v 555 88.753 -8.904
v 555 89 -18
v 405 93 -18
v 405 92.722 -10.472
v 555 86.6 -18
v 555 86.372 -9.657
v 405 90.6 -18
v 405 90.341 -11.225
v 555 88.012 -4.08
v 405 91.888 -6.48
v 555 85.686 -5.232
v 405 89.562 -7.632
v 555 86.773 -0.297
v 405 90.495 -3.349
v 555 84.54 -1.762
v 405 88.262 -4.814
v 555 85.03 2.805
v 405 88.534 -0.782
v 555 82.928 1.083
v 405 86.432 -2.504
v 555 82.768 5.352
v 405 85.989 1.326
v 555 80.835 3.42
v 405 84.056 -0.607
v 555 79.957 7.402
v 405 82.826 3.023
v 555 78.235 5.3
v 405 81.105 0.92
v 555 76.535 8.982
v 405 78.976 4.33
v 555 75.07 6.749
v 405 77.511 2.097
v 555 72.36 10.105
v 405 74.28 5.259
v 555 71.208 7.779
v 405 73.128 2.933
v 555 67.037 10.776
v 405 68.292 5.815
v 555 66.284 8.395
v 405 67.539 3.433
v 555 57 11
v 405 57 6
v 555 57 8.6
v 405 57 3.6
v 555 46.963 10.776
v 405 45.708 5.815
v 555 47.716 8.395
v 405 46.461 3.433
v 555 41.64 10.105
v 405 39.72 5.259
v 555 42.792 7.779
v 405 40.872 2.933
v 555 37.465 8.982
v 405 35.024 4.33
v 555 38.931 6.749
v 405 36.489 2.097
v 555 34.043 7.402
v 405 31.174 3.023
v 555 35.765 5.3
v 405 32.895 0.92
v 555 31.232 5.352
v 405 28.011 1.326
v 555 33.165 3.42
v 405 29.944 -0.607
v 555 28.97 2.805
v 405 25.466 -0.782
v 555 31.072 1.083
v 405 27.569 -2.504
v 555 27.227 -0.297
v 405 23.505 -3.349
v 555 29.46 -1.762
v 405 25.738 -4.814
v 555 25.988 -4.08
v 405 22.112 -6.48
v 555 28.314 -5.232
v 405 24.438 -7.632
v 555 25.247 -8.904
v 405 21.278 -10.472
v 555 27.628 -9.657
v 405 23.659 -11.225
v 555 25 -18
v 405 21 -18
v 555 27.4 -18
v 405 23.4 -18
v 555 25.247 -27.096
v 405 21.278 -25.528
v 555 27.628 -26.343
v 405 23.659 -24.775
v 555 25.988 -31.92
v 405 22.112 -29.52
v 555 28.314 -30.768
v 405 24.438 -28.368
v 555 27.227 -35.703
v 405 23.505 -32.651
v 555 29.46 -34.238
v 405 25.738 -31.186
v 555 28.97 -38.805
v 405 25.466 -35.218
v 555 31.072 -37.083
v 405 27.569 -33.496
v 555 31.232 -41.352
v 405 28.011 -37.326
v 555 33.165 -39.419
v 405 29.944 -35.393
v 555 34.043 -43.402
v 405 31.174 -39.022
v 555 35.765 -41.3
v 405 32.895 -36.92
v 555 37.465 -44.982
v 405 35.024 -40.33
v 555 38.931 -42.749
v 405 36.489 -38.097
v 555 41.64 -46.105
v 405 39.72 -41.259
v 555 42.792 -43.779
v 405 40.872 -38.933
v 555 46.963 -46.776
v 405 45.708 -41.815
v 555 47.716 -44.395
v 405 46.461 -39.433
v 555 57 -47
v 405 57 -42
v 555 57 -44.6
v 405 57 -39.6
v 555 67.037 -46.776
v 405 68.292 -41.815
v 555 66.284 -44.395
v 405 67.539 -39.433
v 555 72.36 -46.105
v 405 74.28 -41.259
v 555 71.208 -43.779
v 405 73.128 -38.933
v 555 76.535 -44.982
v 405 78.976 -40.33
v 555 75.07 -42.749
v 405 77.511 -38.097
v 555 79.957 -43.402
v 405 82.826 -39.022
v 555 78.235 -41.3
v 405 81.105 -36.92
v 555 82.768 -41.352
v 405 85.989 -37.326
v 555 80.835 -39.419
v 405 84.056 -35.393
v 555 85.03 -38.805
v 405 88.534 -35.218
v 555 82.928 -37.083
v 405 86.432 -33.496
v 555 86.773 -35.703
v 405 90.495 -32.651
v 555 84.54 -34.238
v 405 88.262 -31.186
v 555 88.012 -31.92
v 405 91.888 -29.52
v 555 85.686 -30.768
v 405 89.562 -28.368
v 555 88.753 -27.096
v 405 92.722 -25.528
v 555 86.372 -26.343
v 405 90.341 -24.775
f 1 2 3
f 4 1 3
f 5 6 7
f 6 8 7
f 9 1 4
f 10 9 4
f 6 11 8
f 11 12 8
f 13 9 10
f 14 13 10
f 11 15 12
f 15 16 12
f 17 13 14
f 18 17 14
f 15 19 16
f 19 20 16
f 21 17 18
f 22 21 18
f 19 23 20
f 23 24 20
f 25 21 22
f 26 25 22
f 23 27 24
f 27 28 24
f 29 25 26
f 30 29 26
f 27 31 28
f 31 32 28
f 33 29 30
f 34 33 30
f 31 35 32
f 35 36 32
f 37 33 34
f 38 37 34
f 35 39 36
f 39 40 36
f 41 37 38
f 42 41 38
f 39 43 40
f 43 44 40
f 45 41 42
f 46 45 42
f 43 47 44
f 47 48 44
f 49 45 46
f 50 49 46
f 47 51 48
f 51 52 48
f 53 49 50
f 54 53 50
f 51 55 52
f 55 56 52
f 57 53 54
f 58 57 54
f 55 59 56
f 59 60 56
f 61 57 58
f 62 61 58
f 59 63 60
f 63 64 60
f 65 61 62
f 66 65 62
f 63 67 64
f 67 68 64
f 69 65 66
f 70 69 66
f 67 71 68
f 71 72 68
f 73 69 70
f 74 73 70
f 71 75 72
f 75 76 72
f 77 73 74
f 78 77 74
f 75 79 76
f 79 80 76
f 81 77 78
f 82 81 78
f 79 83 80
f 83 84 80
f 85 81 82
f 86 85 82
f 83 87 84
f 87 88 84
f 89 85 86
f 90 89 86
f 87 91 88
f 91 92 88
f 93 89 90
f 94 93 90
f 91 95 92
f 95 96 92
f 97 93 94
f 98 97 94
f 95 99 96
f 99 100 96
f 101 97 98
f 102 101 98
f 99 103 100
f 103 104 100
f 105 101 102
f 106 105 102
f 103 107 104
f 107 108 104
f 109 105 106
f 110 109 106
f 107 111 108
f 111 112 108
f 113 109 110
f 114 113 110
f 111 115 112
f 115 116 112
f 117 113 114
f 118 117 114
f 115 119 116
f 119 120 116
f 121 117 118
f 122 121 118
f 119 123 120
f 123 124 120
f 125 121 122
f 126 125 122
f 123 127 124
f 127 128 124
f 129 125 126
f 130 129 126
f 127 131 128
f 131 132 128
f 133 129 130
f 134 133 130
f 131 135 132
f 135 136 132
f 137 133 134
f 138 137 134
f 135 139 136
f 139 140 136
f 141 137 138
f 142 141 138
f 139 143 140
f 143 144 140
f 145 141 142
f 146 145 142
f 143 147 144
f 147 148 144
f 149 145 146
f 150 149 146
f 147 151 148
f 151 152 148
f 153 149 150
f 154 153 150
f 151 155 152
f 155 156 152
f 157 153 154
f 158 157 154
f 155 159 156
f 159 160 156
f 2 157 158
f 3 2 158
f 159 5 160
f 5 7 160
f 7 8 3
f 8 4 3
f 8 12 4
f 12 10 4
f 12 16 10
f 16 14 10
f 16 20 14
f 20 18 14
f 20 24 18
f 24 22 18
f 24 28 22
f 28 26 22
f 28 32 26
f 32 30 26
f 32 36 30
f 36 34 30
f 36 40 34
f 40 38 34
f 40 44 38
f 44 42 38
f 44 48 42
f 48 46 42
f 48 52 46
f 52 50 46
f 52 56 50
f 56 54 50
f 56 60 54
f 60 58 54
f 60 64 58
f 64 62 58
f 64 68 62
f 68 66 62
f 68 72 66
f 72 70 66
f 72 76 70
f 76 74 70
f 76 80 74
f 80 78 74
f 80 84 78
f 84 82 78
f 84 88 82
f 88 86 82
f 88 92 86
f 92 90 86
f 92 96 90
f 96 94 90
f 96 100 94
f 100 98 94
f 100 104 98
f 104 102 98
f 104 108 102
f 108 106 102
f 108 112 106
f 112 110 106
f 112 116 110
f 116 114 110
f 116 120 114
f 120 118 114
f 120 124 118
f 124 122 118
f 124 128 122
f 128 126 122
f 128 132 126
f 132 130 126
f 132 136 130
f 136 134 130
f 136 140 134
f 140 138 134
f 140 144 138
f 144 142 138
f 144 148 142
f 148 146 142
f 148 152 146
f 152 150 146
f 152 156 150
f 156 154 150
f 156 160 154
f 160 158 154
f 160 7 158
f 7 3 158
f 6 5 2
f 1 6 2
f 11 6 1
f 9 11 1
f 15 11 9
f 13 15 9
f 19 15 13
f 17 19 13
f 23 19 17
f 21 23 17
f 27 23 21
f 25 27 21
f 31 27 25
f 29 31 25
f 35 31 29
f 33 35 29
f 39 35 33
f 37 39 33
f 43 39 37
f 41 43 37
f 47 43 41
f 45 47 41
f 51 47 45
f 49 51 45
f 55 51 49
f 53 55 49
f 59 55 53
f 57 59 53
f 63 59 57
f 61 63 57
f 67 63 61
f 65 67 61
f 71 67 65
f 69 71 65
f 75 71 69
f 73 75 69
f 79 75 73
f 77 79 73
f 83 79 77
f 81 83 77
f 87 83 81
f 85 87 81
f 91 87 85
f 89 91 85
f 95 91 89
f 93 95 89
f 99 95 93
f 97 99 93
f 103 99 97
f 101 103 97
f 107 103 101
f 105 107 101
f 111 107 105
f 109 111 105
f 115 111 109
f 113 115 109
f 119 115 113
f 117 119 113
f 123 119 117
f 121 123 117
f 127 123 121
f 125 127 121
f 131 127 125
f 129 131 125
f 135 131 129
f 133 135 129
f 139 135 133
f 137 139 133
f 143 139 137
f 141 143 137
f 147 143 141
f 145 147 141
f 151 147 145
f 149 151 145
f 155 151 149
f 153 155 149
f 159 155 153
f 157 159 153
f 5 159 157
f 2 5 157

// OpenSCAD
polyhedron(points=[[405.0, 93.0, -18.0], [405.0, 92.722345, -10.472184], [405.0, 91.888432, -6.48006], [405.0, 90.494851, -3.349061], [405.0, 88.53378, -0.782388], [405.0, 85.988826, 1.325884], [405.0, 82.826418, 3.02252], [405.0, 78.976409, 4.329901], [405.0, 74.27991, 5.258955], [405.0, 68.291725, 5.814896], [405.0, 57.0, 6.0], [405.0, 45.708275, 5.814896], [405.0, 39.72009, 5.258955], [405.0, 35.023591, 4.329901], [405.0, 31.173582, 3.02252], [405.0, 28.011174, 1.325884], [405.0, 25.46622, -0.782388], [405.0, 23.505149, -3.349061], [405.0, 22.111568, -6.48006], [405.0, 21.277655, -10.472184], [405.0, 21.0, -18.0], [405.0, 21.277655, -25.527816], [405.0, 22.111568, -29.51994], [405.0, 23.505149, -32.650939], [405.0, 25.46622, -35.217612], [405.0, 28.011174, -37.325884], [405.0, 31.173582, -39.02252], [405.0, 35.023591, -40.329901], [405.0, 39.72009, -41.258955], [405.0, 45.708275, -41.814896], [405.0, 57.0, -42.0], [405.0, 68.291725, -41.814896], [405.0, 74.27991, -41.258955], [405.0, 78.976409, -40.329901], [405.0, 82.826418, -39.02252], [405.0, 85.988826, -37.325884], [405.0, 88.53378, -35.217612], [405.0, 90.494851, -32.650939], [405.0, 91.888432, -29.51994], [405.0, 92.722345, -25.527816], [405.0, 90.6, -18.0], [405.0, 90.340855, -11.224965], [405.0, 89.562537, -7.632054], [405.0, 88.261861, -4.814155], [405.0, 86.431528, -2.504149], [405.0, 84.056238, -0.606704], [405.0, 81.104657, 0.920268], [405.0, 77.511315, 2.096911], [405.0, 73.127916, 2.933059], [405.0, 67.538943, 3.433407], [405.0, 57.0, 3.6], [405.0, 46.461057, 3.433407], [405.0, 40.872084, 2.933059], [405.0, 36.488685, 2.096911], [405.0, 32.895343, 0.920268], [405.0, 29.943762, -0.606704], [405.0, 27.568472, -2.504149], [405.0, 25.738139, -4.814155], [405.0, 24.437463, -7.632054], [405.0, 23.659145, -11.224965], [405.0, 23.4, -18.0], [405.0, 23.659145, -24.775035], [405.0, 24.437463, -28.367946], [405.0, 25.738139, -31.185845], [405.0, 27.568472, -33.495851], [405.0, 29.943762, -35.393296], [405.0, 32.895343, -36.920268], [405.0, 36.488685, -38.096911], [405.0, 40.872084, -38.933059], [405.0, 46.461057, -39.433407], [405.0, 57.0, -39.6], [405.0, 67.538943, -39.433407], [405.0, 73.127916, -38.933059], [405.0, 77.511315, -38.096911], [405.0, 81.104657, -36.920268], [405.0, 84.056238, -35.393296], [405.0, 86.431528, -33.495851], [405.0, 88.261861, -31.185845], [405.0, 89.562537, -28.367946], [405.0, 90.340855, -24.775035], [555.0, 89.0, -18.0], [555.0, 88.753195, -8.903889], [555.0, 88.01194, -4.080072], [555.0, 86.773201, -0.296782], [555.0, 85.030026, 2.804615], [555.0, 82.767845, 5.35211], [555.0, 79.956816, 7.402211], [555.0, 76.534586, 8.981963], [555.0, 72.35992, 10.10457], [555.0, 67.037089, 10.776333], [555.0, 57.0, 11.0], [555.0, 46.962911, 10.776333], [555.0, 41.64008, 10.10457], [555.0, 37.465414, 8.981963], [555.0, 34.043184, 7.402211], [555.0, 31.232155, 5.35211], [555.0, 28.969974, 2.804615], [555.0, 27.226799, -0.296782], [555.0, 25.98806, -4.080072], [555.0, 25.246805, -8.903889], [555.0, 25.0, -18.0], [555.0, 25.246805, -27.096111], [555.0, 25.98806, -31.919928], [555.0, 27.226799, -35.703218], [555.0, 28.969974, -38.804615], [555.0, 31.232155, -41.35211], [555.0, 34.043184, -43.402211], [555.0, 37.465414, -44.981963], [555.0, 41.64008, -46.10457], [555.0, 46.962911, -46.776333], [555.0, 57.0, -47.0], [555.0, 67.037089, -46.776333], [555.0, 72.35992, -46.10457], [555.0, 76.534586, -44.981963], [555.0, 79.956816, -43.402211], [555.0, 82.767845, -41.35211], [555.0, 85.030026, -38.804615], [555.0, 86.773201, -35.703218], [555.0, 88.01194, -31.919928], [555.0, 88.753195, -27.096111], [555.0, 86.6, -18.0], [555.0, 86.371706, -9.65667], [555.0, 85.686044, -5.232066], [555.0, 84.540211, -1.761876], [555.0, 82.927774, 1.082853], [555.0, 80.835257, 3.419521], [555.0, 78.235055, 5.299959], [555.0, 75.069492, 6.748973], [555.0, 71.207926, 7.778675], [555.0, 66.284307, 8.394843], [555.0, 57.0, 8.6], [555.0, 47.715693, 8.394843], [555.0, 42.792074, 7.778675], [555.0, 38.930508, 6.748973], [555.0, 35.764945, 5.299959], [555.0, 33.164743, 3.419521], [555.0, 31.072226, 1.082853], [555.0, 29.459789, -1.761876], [555.0, 28.313956, -5.232066], [555.0, 27.628294, -9.65667], [555.0, 27.4, -18.0], [555.0, 27.628294, -26.34333], [555.0, 28.313956, -30.767934], [555.0, 29.459789, -34.238124], [555.0, 31.072226, -37.082853], [555.0, 33.164743, -39.419521], [555.0, 35.764945, -41.299959], [555.0, 38.930508, -42.748973], [555.0, 42.792074, -43.778675], [555.0, 47.715693, -44.394843], [555.0, 57.0, -44.6], [555.0, 66.284307, -44.394843], [555.0, 71.207926, -43.778675], [555.0, 75.069492, -42.748973], [555.0, 78.235055, -41.299959], [555.0, 80.835257, -39.419521], [555.0, 82.927774, -37.082853], [555.0, 84.540211, -34.238124], [555.0, 85.686044, -30.767934], [555.0, 86.371706, -26.34333]], faces=[[0, 80, 81], [0, 81, 1], [40, 121, 120], [40, 41, 121], [1, 81, 82], [1, 82, 2], [41, 122, 121], [41, 42, 122], [2, 82, 83], [2, 83, 3], [42, 123, 122], [42, 43, 123], [3, 83, 84], [3, 84, 4], [43, 124, 123], [43, 44, 124], [4, 84, 85], [4, 85, 5], [44, 125, 124], [44, 45, 125], [5, 85, 86], [5, 86, 6], [45, 126, 125], [45, 46, 126], [6, 86, 87], [6, 87, 7], [46, 127, 126], [46, 47, 127], [7, 87, 88], [7, 88, 8], [47, 128, 127], [47, 48, 128], [8, 88, 89], [8, 89, 9], [48, 129, 128], [48, 49, 129], [9, 89, 90], [9, 90, 10], [49, 130, 129], [49, 50, 130], [10, 90, 91], [10, 91, 11], [50, 131, 130], [50, 51, 131], [11, 91, 92], [11, 92, 12], [51, 132, 131], [51, 52, 132], [12, 92, 93], [12, 93, 13], [52, 133, 132], [52, 53, 133], [13, 93, 94], [13, 94, 14], [53, 134, 133], [53, 54, 134], [14, 94, 95], [14, 95, 15], [54, 135, 134], [54, 55, 135], [15, 95, 96], [15, 96, 16], [55, 136, 135], [55, 56, 136], [16, 96, 97], [16, 97, 17], [56, 137, 136], [56, 57, 137], [17, 97, 98], [17, 98, 18], [57, 138, 137], [57, 58, 138], [18, 98, 99], [18, 99, 19], [58, 139, 138], [58, 59, 139], [19, 99, 100], [19, 100, 20], [59, 140, 139], [59, 60, 140], [20, 100, 101], [20, 101, 21], [60, 141, 140], [60, 61, 141], [21, 101, 102], [21, 102, 22], [61, 142, 141], [61, 62, 142], [22, 102, 103], [22, 103, 23], [62, 143, 142], [62, 63, 143], [23, 103, 104], [23, 104, 24], [63, 144, 143], [63, 64, 144], [24, 104, 105], [24, 105, 25], [64, 145, 144], [64, 65, 145], [25, 105, 106], [25, 106, 26], [65, 146, 145], [65, 66, 146], [26, 106, 107], [26, 107, 27], [66, 147, 146], [66, 67, 147], [27, 107, 108], [27, 108, 28], [67, 148, 147], [67, 68, 148], [28, 108, 109], [28, 109, 29], [68, 149, 148], [68, 69, 149], [29, 109, 110], [29, 110, 30], [69, 150, 149], [69, 70, 150], [30, 110, 111], [30, 111, 31], [70, 151, 150], [70, 71, 151], [31, 111, 112], [31, 112, 32], [71, 152, 151], [71, 72, 152], [32, 112, 113], [32, 113, 33], [72, 153, 152], [72, 73, 153], [33, 113, 114], [33, 114, 34], [73, 154, 153], [73, 74, 154], [34, 114, 115], [34, 115, 35], [74, 155, 154], [74, 75, 155], [35, 115, 116], [35, 116, 36], [75, 156, 155], [75, 76, 156], [36, 116, 117], [36, 117, 37], [76, 157, 156], [76, 77, 157], [37, 117, 118], [37, 118, 38], [77, 158, 157], [77, 78, 158], [38, 118, 119], [38, 119, 39], [78, 159, 158], [78, 79, 159], [39, 119, 80], [39, 80, 0], [79, 120, 159], [79, 40, 120], [0, 41, 40], [0, 1, 41], [1, 42, 41], [1, 2, 42], [2, 43, 42], [2, 3, 43], [3, 44, 43], [3, 4, 44], [4, 45, 44], [4, 5, 45], [5, 46, 45], [5, 6, 46], [6, 47, 46], [6, 7, 47], [7, 48, 47], [7, 8, 48], [8, 49, 48], [8, 9, 49], [9, 50, 49], [9, 10, 50], [10, 51, 50], [10, 11, 51], [11, 52, 51], [11, 12, 52], [12, 53, 52], [12, 13, 53], [13, 54, 53], [13, 14, 54], [14, 55, 54], [14, 15, 55], [15, 56, 55], [15, 16, 56], [16, 57, 56], [16, 17, 57], [17, 58, 57], [17, 18, 58], [18, 59, 58], [18, 19, 59], [19, 60, 59], [19, 20, 60], [20, 61, 60], [20, 21, 61], [21, 62, 61], [21, 22, 62], [22, 63, 62], [22, 23, 63], [23, 64, 63], [23, 24, 64], [24, 65, 64], [24, 25, 65], [25, 66, 65], [25, 26, 66], [26, 67, 66], [26, 27, 67], [27, 68, 67], [27, 28, 68], [28, 69, 68], [28, 29, 69], [29, 70, 69], [29, 30, 70], [30, 71, 70], [30, 31, 71], [31, 72, 71], [31, 32, 72], [32, 73, 72], [32, 33, 73], [33, 74, 73], [33, 34, 74], [34, 75, 74], [34, 35, 75], [35, 76, 75], [35, 36, 76], [36, 77, 76], [36, 37, 77], [37, 78, 77], [37, 38, 78], [38, 79, 78], [38, 39, 79], [39, 40, 79], [39, 0, 40], [80, 120, 121], [80, 121, 81], [81, 121, 122], [81, 122, 82], [82, 122, 123], [82, 123, 83], [83, 123, 124], [83, 124, 84], [84, 124, 125], [84, 125, 85], [85, 125, 126], [85, 126, 86], [86, 126, 127], [86, 127, 87], [87, 127, 128], [87, 128, 88], [88, 128, 129], [88, 129, 89], [89, 129, 130], [89, 130, 90], [90, 130, 131], [90, 131, 91], [91, 131, 132], [91, 132, 92], [92, 132, 133], [92, 133, 93], [93, 133, 134], [93, 134, 94], [94, 134, 135], [94, 135, 95], [95, 135, 136], [95, 136, 96], [96, 136, 137], [96, 137, 97], [97, 137, 138], [97, 138, 98], [98, 138, 139], [98, 139, 99], [99, 139, 140], [99, 140, 100], [100, 140, 141], [100, 141, 101], [101, 141, 142], [101, 142, 102], [102, 142, 143], [102, 143, 103], [103, 143, 144], [103, 144, 104], [104, 144, 145], [104, 145, 105], [105, 145, 146], [105, 146, 106], [106, 146, 147], [106, 147, 107], [107, 147, 148], [107, 148, 108], [108, 148, 149], [108, 149, 109], [109, 149, 150], [109, 150, 110], [110, 150, 151], [110, 151, 111], [111, 151, 152], [111, 152, 112], [112, 152, 153], [112, 153, 113], [113, 153, 154], [113, 154, 114], [114, 154, 155], [114, 155, 115], [115, 155, 156], [115, 156, 116], [116, 156, 157], [116, 157, 117], [117, 157, 158], [117, 158, 118], [118, 158, 159], [118, 159, 119], [119, 159, 120], [119, 120, 80]], convexity=30);
